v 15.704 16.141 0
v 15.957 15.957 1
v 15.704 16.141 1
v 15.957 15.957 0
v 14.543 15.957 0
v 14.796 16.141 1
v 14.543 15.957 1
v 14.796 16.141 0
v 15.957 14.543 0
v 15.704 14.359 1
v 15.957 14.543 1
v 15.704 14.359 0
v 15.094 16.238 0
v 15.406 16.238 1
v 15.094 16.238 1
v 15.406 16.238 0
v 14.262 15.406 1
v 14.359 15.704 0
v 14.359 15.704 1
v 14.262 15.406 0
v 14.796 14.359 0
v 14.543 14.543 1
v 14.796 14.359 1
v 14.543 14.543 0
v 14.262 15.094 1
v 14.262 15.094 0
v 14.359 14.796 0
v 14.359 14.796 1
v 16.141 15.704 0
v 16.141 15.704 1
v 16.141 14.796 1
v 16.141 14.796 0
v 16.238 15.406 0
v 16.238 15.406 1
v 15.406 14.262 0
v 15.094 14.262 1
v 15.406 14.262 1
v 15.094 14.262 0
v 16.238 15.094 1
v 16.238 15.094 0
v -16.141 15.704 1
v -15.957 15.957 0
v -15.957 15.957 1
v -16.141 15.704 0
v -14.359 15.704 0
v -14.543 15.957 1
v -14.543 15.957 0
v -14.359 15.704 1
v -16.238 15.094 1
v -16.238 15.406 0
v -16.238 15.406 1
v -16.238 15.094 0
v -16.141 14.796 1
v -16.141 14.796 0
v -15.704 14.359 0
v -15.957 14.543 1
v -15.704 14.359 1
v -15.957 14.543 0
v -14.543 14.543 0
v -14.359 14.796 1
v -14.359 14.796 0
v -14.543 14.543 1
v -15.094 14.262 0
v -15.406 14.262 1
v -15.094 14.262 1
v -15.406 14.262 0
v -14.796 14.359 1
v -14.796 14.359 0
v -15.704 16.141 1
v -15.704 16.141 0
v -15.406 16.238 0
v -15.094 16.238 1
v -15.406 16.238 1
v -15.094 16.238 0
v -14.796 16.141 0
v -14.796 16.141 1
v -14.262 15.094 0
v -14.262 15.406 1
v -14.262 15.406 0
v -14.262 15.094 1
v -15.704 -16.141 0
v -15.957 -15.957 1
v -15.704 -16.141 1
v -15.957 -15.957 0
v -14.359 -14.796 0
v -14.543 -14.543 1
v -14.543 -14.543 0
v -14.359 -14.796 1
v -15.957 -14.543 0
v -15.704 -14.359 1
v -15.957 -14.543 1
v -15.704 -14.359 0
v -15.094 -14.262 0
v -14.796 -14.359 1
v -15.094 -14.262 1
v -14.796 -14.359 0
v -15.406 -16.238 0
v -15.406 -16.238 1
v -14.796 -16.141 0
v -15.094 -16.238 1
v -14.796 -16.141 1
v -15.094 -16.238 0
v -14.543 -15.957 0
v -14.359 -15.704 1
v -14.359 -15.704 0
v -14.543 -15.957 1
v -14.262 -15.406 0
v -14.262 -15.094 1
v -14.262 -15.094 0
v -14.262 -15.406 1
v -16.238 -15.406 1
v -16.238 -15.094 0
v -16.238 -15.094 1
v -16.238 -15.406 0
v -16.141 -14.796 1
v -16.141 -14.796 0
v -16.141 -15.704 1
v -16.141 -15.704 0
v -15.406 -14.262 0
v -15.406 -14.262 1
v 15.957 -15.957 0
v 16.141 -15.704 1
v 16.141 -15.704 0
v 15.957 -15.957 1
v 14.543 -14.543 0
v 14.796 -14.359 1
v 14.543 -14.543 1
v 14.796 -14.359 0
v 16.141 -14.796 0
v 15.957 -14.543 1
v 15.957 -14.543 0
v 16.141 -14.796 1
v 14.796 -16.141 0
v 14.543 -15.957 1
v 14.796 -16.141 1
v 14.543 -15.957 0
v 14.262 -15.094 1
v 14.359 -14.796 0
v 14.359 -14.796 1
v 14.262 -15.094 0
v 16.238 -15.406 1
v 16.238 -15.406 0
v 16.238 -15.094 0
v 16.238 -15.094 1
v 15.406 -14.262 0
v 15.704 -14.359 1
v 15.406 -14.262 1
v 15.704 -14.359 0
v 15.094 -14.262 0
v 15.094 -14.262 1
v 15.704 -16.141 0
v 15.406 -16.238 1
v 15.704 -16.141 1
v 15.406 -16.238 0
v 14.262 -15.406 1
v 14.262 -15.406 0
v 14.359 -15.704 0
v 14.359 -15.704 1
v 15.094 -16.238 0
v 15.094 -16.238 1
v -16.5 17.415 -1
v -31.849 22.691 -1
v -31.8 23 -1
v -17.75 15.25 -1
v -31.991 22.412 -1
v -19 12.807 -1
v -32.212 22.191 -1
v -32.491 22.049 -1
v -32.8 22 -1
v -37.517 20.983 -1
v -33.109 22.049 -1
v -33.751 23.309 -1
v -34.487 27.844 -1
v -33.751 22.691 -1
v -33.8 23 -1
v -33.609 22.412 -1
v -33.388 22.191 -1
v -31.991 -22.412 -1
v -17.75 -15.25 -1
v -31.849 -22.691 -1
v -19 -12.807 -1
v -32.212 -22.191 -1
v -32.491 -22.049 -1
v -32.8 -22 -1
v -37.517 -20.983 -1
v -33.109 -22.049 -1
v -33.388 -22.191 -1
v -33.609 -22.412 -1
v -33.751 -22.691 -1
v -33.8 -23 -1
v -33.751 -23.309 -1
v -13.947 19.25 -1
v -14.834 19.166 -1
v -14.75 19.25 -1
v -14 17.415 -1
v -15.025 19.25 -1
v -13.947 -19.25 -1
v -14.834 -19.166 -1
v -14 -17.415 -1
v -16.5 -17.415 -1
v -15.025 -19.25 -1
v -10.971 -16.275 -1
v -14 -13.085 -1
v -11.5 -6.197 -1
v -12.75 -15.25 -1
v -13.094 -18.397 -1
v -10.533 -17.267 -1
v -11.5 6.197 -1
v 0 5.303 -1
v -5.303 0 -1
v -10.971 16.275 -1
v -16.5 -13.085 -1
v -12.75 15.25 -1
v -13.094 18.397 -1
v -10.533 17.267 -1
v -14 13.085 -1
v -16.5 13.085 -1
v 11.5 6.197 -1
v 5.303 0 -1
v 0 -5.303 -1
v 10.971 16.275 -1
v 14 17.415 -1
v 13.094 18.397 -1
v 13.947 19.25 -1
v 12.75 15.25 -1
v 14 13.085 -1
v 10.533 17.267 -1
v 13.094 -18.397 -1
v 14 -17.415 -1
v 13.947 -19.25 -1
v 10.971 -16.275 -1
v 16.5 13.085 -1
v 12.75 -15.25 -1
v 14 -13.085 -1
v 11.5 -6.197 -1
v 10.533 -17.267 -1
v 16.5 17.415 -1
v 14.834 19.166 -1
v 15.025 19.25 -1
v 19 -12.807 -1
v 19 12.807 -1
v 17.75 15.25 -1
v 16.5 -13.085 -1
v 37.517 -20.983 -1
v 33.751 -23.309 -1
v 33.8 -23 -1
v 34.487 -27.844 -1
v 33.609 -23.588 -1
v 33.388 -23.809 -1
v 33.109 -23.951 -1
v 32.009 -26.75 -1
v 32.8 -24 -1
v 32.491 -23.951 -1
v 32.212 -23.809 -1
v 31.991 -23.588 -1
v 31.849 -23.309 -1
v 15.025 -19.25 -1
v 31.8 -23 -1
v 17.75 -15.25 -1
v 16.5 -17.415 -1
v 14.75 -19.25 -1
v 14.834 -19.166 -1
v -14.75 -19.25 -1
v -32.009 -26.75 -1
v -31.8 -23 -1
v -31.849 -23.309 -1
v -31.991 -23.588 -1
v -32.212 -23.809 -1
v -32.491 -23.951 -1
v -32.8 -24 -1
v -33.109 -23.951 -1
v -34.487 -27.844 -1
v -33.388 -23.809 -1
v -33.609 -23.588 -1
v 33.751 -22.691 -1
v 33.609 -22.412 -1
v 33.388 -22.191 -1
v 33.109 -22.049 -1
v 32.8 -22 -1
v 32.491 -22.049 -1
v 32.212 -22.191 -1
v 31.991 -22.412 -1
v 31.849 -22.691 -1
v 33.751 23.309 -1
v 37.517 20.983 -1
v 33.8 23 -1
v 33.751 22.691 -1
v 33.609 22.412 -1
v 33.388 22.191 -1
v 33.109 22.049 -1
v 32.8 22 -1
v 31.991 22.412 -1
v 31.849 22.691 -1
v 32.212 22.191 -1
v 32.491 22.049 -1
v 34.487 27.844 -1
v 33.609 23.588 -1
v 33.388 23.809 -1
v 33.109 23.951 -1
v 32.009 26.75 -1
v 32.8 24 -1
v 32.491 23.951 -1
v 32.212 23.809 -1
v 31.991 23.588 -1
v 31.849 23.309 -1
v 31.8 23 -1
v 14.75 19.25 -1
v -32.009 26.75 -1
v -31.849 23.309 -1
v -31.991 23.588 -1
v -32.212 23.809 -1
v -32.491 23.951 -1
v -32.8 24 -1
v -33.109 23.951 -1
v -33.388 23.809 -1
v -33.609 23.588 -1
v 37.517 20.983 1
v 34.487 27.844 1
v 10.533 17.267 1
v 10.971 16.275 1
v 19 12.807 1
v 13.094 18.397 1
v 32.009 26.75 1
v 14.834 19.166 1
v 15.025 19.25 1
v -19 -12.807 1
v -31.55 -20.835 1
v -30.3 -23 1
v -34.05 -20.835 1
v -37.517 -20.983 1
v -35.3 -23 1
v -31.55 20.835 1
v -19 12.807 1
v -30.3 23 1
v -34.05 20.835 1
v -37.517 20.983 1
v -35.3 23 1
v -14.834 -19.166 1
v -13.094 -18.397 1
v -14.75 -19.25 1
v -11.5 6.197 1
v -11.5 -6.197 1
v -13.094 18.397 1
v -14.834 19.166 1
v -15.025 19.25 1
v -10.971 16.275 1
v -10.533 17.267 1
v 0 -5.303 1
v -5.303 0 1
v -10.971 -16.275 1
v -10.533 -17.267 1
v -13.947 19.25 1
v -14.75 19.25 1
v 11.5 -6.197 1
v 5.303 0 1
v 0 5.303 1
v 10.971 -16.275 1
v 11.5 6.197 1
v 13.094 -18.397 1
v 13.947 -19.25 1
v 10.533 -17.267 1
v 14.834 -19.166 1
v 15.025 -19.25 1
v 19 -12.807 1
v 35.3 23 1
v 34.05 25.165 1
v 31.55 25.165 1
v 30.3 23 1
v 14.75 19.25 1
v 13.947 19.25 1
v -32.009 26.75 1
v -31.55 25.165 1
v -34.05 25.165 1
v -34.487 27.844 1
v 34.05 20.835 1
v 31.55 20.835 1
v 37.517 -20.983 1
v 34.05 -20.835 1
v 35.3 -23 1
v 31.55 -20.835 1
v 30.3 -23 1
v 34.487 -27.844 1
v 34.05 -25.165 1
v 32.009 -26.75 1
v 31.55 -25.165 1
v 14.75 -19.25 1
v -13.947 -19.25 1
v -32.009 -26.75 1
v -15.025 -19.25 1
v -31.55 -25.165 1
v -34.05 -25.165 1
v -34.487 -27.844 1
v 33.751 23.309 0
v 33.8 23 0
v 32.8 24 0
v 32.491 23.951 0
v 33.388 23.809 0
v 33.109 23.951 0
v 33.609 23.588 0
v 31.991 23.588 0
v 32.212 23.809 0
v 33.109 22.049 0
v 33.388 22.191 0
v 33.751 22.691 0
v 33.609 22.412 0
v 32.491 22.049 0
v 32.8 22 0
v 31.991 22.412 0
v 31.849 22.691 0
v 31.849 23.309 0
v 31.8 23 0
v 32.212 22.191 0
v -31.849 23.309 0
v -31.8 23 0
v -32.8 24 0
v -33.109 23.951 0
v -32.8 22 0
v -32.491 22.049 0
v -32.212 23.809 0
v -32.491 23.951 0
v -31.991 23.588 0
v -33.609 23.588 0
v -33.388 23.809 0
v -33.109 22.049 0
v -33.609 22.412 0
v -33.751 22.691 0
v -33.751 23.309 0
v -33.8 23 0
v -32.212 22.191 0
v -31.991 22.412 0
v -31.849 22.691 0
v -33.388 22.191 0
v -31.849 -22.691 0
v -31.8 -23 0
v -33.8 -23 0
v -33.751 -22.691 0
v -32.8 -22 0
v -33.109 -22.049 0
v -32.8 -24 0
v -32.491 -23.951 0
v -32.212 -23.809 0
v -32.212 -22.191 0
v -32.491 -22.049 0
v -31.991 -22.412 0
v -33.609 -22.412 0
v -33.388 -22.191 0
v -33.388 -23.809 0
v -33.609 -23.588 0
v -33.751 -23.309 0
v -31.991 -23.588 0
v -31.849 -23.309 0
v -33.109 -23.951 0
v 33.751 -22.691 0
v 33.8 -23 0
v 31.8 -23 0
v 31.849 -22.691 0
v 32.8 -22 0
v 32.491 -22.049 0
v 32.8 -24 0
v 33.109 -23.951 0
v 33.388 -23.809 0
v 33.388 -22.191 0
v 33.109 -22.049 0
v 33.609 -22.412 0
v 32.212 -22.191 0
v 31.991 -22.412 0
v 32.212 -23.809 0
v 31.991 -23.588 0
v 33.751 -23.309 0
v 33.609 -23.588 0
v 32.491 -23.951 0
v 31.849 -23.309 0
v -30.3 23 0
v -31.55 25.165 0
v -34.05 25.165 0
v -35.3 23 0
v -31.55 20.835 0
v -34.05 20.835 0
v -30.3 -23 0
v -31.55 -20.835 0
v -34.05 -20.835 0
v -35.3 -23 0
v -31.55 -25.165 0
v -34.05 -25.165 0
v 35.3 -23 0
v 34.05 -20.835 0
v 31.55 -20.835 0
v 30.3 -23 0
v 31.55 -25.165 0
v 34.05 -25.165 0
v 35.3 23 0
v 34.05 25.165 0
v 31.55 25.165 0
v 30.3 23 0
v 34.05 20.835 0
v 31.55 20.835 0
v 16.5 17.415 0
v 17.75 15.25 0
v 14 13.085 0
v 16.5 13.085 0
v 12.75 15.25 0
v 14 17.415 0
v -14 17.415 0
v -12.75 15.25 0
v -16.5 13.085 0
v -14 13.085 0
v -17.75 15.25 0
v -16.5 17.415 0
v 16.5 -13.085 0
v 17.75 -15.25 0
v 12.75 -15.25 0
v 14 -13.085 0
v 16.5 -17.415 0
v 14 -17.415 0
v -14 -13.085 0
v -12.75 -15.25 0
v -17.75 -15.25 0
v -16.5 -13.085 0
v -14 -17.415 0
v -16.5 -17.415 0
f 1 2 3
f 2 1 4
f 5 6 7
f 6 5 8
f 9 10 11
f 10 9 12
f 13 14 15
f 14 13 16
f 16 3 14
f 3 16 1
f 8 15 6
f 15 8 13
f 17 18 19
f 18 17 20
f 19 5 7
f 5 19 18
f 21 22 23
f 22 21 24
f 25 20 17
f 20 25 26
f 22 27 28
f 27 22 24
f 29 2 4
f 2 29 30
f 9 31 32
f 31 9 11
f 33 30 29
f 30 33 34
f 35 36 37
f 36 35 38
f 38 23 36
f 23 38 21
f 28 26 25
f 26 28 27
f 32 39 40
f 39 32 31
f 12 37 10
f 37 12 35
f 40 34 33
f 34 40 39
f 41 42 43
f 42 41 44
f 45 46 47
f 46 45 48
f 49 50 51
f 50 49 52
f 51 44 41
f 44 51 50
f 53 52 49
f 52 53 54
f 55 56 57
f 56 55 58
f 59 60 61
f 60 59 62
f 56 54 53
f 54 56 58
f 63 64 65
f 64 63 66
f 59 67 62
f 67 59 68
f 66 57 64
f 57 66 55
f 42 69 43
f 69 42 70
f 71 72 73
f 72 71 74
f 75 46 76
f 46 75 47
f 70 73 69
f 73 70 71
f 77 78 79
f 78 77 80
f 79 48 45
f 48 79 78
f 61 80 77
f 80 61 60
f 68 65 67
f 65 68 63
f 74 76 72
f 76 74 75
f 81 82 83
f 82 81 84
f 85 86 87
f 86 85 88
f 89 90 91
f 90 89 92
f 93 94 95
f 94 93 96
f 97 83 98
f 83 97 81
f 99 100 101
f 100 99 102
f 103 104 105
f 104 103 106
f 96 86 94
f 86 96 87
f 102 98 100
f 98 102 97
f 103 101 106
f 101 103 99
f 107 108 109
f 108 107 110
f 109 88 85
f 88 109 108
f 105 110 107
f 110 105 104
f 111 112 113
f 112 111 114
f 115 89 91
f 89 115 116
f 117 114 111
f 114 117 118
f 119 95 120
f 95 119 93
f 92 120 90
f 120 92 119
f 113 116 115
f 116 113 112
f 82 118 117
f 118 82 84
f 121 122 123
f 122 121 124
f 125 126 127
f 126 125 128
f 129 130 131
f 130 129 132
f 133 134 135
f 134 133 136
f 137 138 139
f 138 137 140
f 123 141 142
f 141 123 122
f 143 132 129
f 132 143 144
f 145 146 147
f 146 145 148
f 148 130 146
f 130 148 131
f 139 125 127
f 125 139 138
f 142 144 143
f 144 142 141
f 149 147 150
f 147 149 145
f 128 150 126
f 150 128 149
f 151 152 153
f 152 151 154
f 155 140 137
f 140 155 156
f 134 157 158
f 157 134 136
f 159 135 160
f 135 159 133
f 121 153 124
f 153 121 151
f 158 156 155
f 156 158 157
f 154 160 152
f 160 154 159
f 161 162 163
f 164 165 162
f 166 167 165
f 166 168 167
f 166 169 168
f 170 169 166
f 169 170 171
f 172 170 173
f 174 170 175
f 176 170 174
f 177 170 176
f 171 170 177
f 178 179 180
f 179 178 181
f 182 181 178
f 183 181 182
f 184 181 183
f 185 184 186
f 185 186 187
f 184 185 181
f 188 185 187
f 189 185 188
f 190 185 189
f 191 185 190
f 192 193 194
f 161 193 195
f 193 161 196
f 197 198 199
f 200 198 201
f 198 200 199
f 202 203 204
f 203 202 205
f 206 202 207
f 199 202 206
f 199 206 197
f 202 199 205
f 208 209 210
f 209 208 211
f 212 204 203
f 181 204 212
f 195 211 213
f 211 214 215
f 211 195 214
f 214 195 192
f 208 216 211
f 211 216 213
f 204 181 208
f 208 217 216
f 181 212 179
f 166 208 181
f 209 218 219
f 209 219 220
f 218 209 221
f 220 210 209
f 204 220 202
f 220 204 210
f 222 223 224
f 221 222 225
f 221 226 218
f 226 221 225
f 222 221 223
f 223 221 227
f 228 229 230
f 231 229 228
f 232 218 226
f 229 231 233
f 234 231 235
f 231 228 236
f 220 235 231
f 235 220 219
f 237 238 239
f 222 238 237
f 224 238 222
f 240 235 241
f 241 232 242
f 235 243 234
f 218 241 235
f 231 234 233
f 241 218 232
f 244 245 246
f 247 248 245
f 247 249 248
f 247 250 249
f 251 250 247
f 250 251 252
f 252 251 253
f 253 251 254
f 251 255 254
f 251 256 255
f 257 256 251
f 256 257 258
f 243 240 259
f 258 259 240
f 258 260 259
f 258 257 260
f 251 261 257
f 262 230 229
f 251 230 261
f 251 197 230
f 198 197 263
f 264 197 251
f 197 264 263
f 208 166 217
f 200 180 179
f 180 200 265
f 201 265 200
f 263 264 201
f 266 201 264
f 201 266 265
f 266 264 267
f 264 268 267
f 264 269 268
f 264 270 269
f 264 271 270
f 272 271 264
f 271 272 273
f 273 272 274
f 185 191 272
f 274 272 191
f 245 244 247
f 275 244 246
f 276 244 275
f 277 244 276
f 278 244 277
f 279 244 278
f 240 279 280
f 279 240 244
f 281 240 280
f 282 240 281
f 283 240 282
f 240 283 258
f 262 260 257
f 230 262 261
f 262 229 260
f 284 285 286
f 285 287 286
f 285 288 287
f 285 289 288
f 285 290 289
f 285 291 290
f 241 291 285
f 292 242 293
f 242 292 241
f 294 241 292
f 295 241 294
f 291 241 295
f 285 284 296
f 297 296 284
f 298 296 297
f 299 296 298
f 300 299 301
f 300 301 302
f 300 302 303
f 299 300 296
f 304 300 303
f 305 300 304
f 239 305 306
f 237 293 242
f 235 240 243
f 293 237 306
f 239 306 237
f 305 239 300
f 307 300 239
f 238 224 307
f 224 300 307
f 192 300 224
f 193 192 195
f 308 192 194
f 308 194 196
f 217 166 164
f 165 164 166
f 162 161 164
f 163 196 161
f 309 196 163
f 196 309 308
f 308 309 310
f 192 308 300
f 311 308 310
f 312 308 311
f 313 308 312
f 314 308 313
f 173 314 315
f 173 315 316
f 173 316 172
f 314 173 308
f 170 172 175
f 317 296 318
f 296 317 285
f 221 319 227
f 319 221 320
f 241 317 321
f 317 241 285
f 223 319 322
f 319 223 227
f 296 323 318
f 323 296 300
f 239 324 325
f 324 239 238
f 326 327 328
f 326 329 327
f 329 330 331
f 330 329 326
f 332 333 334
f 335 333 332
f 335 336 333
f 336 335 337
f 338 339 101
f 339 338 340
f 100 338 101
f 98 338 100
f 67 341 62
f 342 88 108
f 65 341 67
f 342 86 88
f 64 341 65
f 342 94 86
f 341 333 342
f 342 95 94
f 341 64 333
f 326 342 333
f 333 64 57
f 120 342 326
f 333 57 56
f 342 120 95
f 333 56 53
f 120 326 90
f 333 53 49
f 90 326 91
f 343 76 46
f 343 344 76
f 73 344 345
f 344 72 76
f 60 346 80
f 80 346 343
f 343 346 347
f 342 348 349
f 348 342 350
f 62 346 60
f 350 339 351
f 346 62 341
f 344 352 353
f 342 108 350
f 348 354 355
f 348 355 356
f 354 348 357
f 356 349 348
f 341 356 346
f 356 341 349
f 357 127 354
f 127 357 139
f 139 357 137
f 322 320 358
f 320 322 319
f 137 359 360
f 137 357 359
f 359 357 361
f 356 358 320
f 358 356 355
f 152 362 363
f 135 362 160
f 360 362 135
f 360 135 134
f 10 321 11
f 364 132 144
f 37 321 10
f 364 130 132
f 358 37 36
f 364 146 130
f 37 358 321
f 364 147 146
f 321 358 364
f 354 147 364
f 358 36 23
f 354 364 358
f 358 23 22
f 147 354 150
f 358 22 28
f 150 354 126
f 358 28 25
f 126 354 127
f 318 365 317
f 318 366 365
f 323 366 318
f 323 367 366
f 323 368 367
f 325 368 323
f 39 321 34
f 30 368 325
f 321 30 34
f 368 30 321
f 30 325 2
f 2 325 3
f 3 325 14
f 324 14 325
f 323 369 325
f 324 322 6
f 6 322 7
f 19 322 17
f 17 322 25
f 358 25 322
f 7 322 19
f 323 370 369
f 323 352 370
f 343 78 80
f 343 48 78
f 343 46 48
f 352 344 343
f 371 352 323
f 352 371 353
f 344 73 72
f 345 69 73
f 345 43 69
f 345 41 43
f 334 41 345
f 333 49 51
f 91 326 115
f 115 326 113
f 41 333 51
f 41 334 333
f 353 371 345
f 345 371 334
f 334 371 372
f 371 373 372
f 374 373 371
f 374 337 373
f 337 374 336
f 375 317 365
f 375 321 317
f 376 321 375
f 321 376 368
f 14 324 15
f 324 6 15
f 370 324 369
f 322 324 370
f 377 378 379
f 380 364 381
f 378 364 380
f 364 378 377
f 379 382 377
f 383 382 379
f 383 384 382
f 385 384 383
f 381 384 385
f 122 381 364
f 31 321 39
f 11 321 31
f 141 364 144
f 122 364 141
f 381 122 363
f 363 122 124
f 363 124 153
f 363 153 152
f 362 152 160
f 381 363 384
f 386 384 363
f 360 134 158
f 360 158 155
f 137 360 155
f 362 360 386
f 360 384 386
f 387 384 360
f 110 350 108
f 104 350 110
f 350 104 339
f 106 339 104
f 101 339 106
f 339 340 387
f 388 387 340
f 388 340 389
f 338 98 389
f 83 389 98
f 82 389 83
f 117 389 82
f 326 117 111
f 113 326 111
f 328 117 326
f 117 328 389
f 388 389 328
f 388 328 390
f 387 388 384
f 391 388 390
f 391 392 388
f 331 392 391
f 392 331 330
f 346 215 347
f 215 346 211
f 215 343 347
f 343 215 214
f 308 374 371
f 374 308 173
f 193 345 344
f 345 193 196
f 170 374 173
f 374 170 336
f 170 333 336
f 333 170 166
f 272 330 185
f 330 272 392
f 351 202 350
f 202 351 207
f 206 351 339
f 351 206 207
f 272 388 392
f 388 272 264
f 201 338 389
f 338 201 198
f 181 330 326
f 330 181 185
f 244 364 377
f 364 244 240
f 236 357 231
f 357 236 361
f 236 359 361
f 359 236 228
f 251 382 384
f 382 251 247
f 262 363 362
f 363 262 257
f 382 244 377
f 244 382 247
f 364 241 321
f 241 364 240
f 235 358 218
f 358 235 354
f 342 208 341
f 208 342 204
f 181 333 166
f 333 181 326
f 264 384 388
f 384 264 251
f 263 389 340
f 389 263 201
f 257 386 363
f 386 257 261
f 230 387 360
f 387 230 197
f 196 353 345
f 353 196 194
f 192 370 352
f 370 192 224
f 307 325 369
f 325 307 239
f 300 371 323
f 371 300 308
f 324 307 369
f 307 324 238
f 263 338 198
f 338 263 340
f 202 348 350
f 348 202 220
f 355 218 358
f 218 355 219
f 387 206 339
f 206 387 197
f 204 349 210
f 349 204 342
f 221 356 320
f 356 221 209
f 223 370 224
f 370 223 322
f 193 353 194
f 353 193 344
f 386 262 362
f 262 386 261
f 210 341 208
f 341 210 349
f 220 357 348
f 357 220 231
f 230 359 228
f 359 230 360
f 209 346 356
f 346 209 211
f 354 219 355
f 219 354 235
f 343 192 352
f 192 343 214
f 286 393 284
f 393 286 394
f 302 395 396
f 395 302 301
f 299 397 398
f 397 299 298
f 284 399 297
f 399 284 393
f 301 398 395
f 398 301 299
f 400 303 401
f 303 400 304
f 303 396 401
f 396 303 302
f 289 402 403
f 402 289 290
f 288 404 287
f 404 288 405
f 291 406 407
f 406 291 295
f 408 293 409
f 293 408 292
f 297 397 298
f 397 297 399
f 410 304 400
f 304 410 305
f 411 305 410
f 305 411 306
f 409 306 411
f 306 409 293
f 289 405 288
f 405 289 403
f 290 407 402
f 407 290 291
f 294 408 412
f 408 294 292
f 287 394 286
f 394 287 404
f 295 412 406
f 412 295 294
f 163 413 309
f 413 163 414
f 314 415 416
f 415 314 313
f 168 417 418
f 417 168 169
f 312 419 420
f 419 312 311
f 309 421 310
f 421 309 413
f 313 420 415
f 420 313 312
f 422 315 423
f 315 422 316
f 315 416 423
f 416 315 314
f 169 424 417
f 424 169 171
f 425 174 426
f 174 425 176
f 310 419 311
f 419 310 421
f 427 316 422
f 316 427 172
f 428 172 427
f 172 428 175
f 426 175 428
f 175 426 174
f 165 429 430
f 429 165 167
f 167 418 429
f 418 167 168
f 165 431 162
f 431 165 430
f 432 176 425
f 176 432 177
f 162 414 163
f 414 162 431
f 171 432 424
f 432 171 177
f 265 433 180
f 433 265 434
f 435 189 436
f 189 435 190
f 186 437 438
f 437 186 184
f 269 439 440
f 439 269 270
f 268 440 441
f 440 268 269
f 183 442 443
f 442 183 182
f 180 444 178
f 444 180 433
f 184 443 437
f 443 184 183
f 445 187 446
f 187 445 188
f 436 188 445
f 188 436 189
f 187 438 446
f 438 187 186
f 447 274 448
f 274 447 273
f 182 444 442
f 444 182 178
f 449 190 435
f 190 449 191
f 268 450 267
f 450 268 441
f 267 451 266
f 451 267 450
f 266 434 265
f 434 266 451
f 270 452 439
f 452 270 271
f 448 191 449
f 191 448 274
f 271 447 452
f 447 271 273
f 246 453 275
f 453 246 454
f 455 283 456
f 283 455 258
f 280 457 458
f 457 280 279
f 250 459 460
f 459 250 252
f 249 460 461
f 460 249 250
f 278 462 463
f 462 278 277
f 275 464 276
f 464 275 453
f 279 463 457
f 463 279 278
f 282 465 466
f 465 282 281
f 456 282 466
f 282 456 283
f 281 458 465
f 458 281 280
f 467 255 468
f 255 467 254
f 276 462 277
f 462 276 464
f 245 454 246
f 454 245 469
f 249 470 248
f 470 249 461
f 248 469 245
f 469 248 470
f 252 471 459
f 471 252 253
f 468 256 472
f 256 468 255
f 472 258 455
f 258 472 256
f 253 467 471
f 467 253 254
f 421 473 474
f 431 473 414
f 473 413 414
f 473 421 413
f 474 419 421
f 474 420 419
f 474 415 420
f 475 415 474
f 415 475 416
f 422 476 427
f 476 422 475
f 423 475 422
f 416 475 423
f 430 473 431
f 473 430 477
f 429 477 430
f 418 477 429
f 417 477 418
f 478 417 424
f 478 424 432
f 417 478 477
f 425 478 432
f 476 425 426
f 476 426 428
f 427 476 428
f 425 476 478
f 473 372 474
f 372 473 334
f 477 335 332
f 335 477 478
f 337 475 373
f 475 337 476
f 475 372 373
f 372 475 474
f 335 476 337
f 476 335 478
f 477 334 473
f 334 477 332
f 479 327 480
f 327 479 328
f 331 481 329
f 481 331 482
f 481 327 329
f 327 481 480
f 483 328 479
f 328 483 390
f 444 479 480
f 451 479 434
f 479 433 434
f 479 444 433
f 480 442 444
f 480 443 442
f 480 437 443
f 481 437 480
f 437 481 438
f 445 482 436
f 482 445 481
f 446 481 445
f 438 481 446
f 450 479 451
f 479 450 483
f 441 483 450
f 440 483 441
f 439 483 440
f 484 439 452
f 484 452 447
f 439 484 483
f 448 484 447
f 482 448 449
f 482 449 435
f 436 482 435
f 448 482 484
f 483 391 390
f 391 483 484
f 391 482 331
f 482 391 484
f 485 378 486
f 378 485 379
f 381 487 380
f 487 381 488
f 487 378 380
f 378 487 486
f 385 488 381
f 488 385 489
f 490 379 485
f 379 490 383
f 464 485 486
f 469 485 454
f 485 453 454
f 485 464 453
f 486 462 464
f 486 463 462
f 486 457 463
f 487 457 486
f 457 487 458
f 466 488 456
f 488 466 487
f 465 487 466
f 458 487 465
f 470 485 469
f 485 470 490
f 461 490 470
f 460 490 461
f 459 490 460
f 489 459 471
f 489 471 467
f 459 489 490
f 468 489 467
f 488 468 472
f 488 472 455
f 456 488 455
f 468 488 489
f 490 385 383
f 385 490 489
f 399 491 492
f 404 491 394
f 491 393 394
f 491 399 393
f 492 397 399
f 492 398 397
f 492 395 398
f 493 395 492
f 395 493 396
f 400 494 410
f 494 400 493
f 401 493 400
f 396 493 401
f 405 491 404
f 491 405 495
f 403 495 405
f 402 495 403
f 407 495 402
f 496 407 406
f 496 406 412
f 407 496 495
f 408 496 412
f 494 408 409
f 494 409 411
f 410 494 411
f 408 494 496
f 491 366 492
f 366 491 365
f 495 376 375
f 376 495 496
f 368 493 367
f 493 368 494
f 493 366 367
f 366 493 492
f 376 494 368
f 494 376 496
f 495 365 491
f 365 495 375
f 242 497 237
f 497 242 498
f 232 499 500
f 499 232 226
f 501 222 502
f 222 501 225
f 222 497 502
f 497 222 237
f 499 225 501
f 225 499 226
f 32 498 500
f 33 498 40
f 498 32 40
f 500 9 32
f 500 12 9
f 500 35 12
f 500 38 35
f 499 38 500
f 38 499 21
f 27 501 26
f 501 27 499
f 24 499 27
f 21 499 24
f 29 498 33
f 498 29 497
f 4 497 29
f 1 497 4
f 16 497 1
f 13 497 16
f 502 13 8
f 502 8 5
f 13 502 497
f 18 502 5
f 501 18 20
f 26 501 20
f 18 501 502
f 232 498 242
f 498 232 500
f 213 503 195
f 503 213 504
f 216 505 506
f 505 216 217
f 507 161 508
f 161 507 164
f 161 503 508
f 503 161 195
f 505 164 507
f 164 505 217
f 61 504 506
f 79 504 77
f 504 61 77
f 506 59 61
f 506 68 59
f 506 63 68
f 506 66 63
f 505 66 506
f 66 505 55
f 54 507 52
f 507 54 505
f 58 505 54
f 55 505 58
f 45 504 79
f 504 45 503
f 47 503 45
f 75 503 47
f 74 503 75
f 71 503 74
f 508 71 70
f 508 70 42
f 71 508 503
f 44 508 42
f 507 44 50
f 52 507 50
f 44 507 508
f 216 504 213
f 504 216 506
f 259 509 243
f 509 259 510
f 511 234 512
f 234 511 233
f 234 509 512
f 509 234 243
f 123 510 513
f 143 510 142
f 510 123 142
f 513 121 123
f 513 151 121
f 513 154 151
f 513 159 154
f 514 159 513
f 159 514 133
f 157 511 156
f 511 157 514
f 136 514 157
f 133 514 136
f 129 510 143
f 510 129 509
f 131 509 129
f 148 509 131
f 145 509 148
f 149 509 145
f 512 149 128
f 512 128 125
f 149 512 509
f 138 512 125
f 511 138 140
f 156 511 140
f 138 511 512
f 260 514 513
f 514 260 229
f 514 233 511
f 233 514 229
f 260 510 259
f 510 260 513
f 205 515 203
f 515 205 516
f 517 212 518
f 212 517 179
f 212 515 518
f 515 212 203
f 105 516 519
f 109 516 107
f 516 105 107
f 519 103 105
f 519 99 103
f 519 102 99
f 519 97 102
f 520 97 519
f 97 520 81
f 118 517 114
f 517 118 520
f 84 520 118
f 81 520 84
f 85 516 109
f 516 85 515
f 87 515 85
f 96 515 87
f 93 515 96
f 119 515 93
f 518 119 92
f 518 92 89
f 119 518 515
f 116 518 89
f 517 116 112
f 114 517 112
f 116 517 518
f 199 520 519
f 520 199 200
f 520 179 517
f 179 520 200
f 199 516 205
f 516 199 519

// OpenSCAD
// Parameters
arm_length = sqrt(2) * 34/2;     // Length from center to end of each arm
hole_dist = sqrt(2) * 30.5/2;
arm_width = 7.5;       // Width of each arm
arm_thickness = 2;   // Thickness of the X
hole_diameter = 2;
hole_depth = arm_thickness + 1;


module beam_between(p1, p2, width, thickness) {
    // Calculate the direction vector
    dx = p2[0] - p1[0];
    dy = p2[1] - p1[1];
    angle = atan2(dy, dx);
    len = sqrt(dx*dx + dy*dy);

    translate(p1-[0,0,thickness/2])
        rotate([0, 0, angle])
            linear_extrude(height = thickness)
                translate([0, -width/2])
                    square([len, width], center = false);
}

module extendedBeam(p1, p2, width, thickness, extension) {
     dx = p2[0] - p1[0];
    dy = p2[1] - p1[1];
    len = sqrt(dx*dx + dy*dy);

    // Normalize the direction vector
    ux = dx / len;
    uy = dy / len;

    // Extend p1 backward and p2 forward
    p1_ext = [p1[0] - ux * extension / 2, p1[1] - uy * extension / 2, p1[2]];
    p2_ext = [p2[0] + ux * extension / 2, p2[1] + uy * extension / 2, p2[2]];

    // Call the original beam module
    beam_between(p1_ext, p2_ext, width, thickness);
}

module hole(p1, hole_diameter, hole_depth) {
    translate(p1)
    cylinder(h = hole_depth, d = hole_diameter, center = true, $fn = 20);
}

module hole_custom_sides(p1, hole_diameter, hole_depth, side_num) {
    translate(p1)
    cylinder(h = hole_depth, d = hole_diameter, center = true, $fn = side_num);
}

// Main X shape with holes
difference() {
    union() {
        extendedBeam([30.5/2,30.5/2,0], [32.8,23,0], width=arm_width, thickness = arm_thickness, extension=7);
        extendedBeam([-30.5/2,30.5/2,0], [-32.8,23,0], width=arm_width, thickness = arm_thickness, extension=7);
        extendedBeam([-30.5/2,-30.5/2,0], [-32.8,-23,0], width=arm_width, thickness = arm_thickness, extension=7);
        extendedBeam([30.5/2,-30.5/2,0], [32.8,-23,0], width=arm_width, thickness = arm_thickness, extension=7);
        
        extendedBeam([30.5/2,-30.5/2,0], [30.5/2,30.5/2,0], width=arm_width, thickness = arm_thickness, extension=0);
        extendedBeam([-30.5/2,-30.5/2,0], [-30.5/2,30.5/2,0], width=arm_width, thickness = arm_thickness, extension=0);
        
        
        extendedBeam([-32.8,-23,0], [32.8,-23,0], width=arm_width, thickness = arm_thickness, extension=0);
        extendedBeam([-32.8,23,0], [32.8,23,0], width=arm_width, thickness = arm_thickness, extension=0);
        // First arm (diagonal 45°)
        rotate([0, 0, 45])
            cube([arm_length * 2, arm_width, arm_thickness], center = true);
        
        // Second arm (diagonal -45°)
        rotate([0, 0, -45])
            cube([arm_length * 2, arm_width, arm_thickness], center = true);
    }

    hole([32.8,23,0], hole_diameter, hole_depth);
    hole([-32.8,23,0], hole_diameter, hole_depth);
    hole([-32.8,-23,0], hole_diameter, hole_depth);
    hole([32.8,-23,0], hole_diameter, hole_depth);
    // Holes at the ends of the X
    for (angle = [45, 135, 225, 315]) {
        rotate([0, 0, angle])
            translate([hole_dist, 0, 0])
                cylinder(h = hole_depth, d = hole_diameter, center = true, $fn = 20);
    }
    
    hole_custom_sides([-32.8,23,1],5, 2, 6);
    hole_custom_sides([-32.8,-23,1],5, 2, 6);
    hole_custom_sides([32.8,-23,1],5, 2, 6);
    hole_custom_sides([32.8,23,1],5, 2, 6);
    
    hole_custom_sides([30.5/2,30.5/2,-1],5, 2, 6);
    hole_custom_sides([-30.5/2,30.5/2,-1],5, 2, 6);
    hole_custom_sides([30.5/2,-30.5/2,-1],5, 2, 6);
    hole_custom_sides([-30.5/2,-30.5/2,-1],5, 2, 6);
}
